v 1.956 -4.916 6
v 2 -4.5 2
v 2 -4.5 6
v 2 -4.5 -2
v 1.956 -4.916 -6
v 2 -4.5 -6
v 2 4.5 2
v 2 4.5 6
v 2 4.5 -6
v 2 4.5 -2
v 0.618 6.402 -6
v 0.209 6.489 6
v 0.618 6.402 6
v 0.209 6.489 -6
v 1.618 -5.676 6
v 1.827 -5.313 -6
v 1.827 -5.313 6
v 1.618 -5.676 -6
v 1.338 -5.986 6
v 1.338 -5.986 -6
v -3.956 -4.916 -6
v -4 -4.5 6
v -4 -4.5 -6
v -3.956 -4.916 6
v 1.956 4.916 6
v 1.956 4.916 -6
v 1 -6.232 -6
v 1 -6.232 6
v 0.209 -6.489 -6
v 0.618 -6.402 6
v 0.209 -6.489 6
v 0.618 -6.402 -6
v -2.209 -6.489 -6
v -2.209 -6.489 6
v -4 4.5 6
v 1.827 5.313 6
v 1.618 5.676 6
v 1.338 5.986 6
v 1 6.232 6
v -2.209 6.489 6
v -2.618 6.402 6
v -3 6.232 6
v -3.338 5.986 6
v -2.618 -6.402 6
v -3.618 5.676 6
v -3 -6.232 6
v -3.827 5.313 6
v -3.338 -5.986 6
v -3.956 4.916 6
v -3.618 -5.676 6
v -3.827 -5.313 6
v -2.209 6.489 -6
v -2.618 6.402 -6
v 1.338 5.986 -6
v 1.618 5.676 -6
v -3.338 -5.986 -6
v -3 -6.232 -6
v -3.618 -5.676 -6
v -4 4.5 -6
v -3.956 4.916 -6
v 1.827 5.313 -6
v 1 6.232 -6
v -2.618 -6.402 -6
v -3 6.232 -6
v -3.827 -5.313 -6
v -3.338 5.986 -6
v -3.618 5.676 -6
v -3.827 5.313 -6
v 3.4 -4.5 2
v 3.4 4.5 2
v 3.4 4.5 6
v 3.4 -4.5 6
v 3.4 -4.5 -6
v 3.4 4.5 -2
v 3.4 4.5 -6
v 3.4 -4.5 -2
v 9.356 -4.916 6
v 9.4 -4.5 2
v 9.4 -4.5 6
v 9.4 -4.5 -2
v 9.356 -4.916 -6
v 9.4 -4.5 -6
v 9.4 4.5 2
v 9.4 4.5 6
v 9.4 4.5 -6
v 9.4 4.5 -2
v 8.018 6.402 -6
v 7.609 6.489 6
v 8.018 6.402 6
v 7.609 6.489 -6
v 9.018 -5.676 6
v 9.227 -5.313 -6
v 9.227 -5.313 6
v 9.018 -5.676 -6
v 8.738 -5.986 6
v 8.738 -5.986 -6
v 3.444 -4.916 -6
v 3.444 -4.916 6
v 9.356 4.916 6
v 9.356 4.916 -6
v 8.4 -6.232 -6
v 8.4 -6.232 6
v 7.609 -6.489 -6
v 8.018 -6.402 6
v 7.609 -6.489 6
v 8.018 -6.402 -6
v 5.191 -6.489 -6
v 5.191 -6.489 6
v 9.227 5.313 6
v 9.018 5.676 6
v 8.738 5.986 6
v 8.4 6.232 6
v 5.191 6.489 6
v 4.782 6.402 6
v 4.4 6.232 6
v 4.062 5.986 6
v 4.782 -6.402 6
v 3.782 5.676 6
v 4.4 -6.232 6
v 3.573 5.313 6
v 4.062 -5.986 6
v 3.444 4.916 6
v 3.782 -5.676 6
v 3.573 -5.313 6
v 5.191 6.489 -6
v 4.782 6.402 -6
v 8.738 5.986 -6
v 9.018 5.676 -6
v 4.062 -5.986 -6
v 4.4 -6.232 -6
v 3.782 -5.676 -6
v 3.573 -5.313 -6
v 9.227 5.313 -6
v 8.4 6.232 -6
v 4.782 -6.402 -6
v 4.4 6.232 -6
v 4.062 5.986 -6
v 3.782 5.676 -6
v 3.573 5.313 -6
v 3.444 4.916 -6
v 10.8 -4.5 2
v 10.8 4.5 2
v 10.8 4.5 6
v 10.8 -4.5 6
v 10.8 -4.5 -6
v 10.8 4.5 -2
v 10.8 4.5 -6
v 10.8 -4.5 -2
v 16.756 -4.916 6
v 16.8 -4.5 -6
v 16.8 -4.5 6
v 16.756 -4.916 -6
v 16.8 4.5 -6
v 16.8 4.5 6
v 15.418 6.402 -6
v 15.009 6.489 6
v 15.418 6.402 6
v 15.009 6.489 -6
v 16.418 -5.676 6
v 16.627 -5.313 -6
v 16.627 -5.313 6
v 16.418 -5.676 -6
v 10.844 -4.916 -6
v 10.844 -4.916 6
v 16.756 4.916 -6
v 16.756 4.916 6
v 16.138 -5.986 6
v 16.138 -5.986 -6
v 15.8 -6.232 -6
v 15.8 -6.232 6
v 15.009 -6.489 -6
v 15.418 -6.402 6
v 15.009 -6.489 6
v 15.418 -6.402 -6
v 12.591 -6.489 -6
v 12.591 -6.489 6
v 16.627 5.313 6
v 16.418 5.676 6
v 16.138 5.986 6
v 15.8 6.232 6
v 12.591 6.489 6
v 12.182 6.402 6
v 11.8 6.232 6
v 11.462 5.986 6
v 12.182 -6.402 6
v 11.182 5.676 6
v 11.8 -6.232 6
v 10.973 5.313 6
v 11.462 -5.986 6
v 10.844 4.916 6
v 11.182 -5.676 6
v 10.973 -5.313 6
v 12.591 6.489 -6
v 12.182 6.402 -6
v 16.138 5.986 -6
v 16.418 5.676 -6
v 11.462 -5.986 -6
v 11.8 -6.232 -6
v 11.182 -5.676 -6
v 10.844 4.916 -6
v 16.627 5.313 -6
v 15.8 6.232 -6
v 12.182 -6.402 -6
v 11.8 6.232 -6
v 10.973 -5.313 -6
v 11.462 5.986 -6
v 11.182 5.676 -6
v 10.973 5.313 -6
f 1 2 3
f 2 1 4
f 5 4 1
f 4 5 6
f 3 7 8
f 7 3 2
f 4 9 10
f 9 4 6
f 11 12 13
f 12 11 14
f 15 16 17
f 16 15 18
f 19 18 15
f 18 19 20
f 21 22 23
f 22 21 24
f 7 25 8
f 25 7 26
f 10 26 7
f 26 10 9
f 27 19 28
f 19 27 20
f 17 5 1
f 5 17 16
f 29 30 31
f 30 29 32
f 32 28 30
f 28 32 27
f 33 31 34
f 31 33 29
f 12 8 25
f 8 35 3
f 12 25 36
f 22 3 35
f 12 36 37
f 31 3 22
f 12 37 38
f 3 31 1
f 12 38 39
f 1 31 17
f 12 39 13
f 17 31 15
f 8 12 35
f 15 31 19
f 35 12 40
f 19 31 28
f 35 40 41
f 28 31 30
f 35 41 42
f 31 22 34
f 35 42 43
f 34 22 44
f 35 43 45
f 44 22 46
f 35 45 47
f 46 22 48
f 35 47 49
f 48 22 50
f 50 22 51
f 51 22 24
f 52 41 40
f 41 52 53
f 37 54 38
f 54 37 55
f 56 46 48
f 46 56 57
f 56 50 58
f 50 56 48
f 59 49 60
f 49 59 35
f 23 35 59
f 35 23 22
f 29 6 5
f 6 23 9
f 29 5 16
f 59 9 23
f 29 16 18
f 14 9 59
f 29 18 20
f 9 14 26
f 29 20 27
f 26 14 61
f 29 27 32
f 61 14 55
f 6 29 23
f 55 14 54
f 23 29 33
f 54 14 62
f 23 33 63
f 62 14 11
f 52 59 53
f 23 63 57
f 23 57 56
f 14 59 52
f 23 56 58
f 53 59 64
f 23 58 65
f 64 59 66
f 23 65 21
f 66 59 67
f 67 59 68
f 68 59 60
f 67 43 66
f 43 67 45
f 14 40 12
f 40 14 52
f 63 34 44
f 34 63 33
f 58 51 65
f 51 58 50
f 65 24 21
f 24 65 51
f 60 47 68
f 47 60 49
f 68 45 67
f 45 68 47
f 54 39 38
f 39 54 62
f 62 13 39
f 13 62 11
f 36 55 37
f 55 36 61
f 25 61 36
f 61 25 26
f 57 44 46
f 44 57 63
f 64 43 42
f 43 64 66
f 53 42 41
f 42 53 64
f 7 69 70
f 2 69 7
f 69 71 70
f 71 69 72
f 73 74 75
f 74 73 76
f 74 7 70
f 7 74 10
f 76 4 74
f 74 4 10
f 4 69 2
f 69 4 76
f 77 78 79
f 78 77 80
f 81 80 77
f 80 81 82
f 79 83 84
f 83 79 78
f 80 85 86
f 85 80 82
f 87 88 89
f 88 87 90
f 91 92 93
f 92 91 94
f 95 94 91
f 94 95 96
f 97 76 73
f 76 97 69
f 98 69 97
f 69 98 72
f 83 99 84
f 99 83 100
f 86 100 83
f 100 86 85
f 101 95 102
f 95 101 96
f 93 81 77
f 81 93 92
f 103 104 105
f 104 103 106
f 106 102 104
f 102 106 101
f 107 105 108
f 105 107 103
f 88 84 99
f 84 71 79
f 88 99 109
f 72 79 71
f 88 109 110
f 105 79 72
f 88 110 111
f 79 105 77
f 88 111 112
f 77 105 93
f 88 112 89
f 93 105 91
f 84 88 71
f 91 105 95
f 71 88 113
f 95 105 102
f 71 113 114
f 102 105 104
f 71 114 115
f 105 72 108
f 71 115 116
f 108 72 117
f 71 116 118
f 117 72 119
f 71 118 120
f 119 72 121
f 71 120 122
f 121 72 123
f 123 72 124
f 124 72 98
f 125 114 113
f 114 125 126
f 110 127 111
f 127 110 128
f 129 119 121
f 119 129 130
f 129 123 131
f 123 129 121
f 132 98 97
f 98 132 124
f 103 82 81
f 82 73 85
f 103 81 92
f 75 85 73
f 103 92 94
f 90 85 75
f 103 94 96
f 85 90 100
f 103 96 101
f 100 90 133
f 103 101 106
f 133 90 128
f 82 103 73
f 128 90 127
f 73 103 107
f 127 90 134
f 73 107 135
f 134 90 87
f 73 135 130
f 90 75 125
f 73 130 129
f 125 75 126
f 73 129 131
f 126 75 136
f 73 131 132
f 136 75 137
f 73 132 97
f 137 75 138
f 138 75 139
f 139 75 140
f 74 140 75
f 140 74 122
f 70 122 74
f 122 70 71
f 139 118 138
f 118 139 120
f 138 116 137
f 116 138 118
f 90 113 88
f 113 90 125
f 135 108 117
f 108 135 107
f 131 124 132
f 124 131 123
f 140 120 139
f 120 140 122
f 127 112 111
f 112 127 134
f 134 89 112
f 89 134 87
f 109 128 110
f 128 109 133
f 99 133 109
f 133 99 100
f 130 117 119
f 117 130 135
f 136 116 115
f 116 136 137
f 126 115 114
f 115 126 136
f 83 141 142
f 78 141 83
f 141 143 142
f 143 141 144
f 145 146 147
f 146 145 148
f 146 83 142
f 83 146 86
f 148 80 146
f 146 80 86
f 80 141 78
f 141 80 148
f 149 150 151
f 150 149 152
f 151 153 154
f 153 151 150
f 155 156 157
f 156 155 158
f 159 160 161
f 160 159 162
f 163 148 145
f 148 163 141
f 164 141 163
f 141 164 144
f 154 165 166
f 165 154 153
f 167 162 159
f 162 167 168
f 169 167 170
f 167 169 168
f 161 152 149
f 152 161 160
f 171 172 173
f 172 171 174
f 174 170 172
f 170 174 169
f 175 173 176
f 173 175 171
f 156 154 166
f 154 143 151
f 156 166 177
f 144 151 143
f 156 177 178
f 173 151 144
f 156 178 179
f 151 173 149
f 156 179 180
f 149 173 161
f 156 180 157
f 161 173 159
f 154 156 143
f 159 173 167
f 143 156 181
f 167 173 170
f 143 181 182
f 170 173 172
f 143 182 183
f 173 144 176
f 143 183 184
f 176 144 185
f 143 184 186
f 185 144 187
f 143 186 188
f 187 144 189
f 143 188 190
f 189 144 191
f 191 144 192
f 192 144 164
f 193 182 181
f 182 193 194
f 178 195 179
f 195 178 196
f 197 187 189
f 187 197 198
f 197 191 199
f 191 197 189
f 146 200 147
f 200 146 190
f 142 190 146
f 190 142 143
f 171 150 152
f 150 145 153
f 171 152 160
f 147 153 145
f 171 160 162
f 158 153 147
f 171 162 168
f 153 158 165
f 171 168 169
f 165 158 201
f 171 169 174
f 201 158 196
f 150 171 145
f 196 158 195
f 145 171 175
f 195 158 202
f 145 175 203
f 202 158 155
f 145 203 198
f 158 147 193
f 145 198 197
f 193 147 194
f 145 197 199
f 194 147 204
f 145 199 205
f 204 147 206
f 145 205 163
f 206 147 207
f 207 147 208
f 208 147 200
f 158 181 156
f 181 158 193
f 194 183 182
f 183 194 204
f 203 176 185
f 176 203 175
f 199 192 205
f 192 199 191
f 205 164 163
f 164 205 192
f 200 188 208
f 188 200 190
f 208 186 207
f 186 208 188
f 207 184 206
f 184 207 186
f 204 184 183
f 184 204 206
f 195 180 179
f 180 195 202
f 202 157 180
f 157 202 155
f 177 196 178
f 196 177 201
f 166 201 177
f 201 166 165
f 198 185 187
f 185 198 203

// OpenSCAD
$fn=30;
height=12;
radius=2;
union(){
    hull(){
        translate([0,-4.5,0])cylinder(r=radius,h=height, center=true);
        translate([-2,4.5,0])cylinder(r=radius,h=height, center=true);
        translate([0,4.5,0])cylinder(r=radius,h=height, center=true);
        translate([-2,-4.5,0])cylinder(r=radius,h=height, center=true);
  }
  translate([2.7,0,0])cube([radius/1.428571429,radius+7,radius+2],center=true);
   translate([7.4,0,0]) hull(){
        translate([0,-4.5,0])cylinder(r=radius,h=height, center=true);
        translate([-2,4.5,0])cylinder(r=radius,h=height, center=true);
        translate([0,4.5,0])cylinder(r=radius,h=height, center=true);
        translate([-2,-4.5,0])cylinder(r=radius,h=height, center=true);
  }
  translate([10.1,0,0])cube([radius/1.428571429,radius+7,radius+2],center=true);
   translate([14.8,0,0]) hull(){
        translate([0,-4.5,0])cylinder(r=radius,h=height, center=true);
        translate([-2,4.5,0])cylinder(r=radius,h=height, center=true);
        translate([0,4.5,0])cylinder(r=radius,h=height, center=true);
        translate([-2,-4.5,0])cylinder(r=radius,h=height, center=true);
  }
}
